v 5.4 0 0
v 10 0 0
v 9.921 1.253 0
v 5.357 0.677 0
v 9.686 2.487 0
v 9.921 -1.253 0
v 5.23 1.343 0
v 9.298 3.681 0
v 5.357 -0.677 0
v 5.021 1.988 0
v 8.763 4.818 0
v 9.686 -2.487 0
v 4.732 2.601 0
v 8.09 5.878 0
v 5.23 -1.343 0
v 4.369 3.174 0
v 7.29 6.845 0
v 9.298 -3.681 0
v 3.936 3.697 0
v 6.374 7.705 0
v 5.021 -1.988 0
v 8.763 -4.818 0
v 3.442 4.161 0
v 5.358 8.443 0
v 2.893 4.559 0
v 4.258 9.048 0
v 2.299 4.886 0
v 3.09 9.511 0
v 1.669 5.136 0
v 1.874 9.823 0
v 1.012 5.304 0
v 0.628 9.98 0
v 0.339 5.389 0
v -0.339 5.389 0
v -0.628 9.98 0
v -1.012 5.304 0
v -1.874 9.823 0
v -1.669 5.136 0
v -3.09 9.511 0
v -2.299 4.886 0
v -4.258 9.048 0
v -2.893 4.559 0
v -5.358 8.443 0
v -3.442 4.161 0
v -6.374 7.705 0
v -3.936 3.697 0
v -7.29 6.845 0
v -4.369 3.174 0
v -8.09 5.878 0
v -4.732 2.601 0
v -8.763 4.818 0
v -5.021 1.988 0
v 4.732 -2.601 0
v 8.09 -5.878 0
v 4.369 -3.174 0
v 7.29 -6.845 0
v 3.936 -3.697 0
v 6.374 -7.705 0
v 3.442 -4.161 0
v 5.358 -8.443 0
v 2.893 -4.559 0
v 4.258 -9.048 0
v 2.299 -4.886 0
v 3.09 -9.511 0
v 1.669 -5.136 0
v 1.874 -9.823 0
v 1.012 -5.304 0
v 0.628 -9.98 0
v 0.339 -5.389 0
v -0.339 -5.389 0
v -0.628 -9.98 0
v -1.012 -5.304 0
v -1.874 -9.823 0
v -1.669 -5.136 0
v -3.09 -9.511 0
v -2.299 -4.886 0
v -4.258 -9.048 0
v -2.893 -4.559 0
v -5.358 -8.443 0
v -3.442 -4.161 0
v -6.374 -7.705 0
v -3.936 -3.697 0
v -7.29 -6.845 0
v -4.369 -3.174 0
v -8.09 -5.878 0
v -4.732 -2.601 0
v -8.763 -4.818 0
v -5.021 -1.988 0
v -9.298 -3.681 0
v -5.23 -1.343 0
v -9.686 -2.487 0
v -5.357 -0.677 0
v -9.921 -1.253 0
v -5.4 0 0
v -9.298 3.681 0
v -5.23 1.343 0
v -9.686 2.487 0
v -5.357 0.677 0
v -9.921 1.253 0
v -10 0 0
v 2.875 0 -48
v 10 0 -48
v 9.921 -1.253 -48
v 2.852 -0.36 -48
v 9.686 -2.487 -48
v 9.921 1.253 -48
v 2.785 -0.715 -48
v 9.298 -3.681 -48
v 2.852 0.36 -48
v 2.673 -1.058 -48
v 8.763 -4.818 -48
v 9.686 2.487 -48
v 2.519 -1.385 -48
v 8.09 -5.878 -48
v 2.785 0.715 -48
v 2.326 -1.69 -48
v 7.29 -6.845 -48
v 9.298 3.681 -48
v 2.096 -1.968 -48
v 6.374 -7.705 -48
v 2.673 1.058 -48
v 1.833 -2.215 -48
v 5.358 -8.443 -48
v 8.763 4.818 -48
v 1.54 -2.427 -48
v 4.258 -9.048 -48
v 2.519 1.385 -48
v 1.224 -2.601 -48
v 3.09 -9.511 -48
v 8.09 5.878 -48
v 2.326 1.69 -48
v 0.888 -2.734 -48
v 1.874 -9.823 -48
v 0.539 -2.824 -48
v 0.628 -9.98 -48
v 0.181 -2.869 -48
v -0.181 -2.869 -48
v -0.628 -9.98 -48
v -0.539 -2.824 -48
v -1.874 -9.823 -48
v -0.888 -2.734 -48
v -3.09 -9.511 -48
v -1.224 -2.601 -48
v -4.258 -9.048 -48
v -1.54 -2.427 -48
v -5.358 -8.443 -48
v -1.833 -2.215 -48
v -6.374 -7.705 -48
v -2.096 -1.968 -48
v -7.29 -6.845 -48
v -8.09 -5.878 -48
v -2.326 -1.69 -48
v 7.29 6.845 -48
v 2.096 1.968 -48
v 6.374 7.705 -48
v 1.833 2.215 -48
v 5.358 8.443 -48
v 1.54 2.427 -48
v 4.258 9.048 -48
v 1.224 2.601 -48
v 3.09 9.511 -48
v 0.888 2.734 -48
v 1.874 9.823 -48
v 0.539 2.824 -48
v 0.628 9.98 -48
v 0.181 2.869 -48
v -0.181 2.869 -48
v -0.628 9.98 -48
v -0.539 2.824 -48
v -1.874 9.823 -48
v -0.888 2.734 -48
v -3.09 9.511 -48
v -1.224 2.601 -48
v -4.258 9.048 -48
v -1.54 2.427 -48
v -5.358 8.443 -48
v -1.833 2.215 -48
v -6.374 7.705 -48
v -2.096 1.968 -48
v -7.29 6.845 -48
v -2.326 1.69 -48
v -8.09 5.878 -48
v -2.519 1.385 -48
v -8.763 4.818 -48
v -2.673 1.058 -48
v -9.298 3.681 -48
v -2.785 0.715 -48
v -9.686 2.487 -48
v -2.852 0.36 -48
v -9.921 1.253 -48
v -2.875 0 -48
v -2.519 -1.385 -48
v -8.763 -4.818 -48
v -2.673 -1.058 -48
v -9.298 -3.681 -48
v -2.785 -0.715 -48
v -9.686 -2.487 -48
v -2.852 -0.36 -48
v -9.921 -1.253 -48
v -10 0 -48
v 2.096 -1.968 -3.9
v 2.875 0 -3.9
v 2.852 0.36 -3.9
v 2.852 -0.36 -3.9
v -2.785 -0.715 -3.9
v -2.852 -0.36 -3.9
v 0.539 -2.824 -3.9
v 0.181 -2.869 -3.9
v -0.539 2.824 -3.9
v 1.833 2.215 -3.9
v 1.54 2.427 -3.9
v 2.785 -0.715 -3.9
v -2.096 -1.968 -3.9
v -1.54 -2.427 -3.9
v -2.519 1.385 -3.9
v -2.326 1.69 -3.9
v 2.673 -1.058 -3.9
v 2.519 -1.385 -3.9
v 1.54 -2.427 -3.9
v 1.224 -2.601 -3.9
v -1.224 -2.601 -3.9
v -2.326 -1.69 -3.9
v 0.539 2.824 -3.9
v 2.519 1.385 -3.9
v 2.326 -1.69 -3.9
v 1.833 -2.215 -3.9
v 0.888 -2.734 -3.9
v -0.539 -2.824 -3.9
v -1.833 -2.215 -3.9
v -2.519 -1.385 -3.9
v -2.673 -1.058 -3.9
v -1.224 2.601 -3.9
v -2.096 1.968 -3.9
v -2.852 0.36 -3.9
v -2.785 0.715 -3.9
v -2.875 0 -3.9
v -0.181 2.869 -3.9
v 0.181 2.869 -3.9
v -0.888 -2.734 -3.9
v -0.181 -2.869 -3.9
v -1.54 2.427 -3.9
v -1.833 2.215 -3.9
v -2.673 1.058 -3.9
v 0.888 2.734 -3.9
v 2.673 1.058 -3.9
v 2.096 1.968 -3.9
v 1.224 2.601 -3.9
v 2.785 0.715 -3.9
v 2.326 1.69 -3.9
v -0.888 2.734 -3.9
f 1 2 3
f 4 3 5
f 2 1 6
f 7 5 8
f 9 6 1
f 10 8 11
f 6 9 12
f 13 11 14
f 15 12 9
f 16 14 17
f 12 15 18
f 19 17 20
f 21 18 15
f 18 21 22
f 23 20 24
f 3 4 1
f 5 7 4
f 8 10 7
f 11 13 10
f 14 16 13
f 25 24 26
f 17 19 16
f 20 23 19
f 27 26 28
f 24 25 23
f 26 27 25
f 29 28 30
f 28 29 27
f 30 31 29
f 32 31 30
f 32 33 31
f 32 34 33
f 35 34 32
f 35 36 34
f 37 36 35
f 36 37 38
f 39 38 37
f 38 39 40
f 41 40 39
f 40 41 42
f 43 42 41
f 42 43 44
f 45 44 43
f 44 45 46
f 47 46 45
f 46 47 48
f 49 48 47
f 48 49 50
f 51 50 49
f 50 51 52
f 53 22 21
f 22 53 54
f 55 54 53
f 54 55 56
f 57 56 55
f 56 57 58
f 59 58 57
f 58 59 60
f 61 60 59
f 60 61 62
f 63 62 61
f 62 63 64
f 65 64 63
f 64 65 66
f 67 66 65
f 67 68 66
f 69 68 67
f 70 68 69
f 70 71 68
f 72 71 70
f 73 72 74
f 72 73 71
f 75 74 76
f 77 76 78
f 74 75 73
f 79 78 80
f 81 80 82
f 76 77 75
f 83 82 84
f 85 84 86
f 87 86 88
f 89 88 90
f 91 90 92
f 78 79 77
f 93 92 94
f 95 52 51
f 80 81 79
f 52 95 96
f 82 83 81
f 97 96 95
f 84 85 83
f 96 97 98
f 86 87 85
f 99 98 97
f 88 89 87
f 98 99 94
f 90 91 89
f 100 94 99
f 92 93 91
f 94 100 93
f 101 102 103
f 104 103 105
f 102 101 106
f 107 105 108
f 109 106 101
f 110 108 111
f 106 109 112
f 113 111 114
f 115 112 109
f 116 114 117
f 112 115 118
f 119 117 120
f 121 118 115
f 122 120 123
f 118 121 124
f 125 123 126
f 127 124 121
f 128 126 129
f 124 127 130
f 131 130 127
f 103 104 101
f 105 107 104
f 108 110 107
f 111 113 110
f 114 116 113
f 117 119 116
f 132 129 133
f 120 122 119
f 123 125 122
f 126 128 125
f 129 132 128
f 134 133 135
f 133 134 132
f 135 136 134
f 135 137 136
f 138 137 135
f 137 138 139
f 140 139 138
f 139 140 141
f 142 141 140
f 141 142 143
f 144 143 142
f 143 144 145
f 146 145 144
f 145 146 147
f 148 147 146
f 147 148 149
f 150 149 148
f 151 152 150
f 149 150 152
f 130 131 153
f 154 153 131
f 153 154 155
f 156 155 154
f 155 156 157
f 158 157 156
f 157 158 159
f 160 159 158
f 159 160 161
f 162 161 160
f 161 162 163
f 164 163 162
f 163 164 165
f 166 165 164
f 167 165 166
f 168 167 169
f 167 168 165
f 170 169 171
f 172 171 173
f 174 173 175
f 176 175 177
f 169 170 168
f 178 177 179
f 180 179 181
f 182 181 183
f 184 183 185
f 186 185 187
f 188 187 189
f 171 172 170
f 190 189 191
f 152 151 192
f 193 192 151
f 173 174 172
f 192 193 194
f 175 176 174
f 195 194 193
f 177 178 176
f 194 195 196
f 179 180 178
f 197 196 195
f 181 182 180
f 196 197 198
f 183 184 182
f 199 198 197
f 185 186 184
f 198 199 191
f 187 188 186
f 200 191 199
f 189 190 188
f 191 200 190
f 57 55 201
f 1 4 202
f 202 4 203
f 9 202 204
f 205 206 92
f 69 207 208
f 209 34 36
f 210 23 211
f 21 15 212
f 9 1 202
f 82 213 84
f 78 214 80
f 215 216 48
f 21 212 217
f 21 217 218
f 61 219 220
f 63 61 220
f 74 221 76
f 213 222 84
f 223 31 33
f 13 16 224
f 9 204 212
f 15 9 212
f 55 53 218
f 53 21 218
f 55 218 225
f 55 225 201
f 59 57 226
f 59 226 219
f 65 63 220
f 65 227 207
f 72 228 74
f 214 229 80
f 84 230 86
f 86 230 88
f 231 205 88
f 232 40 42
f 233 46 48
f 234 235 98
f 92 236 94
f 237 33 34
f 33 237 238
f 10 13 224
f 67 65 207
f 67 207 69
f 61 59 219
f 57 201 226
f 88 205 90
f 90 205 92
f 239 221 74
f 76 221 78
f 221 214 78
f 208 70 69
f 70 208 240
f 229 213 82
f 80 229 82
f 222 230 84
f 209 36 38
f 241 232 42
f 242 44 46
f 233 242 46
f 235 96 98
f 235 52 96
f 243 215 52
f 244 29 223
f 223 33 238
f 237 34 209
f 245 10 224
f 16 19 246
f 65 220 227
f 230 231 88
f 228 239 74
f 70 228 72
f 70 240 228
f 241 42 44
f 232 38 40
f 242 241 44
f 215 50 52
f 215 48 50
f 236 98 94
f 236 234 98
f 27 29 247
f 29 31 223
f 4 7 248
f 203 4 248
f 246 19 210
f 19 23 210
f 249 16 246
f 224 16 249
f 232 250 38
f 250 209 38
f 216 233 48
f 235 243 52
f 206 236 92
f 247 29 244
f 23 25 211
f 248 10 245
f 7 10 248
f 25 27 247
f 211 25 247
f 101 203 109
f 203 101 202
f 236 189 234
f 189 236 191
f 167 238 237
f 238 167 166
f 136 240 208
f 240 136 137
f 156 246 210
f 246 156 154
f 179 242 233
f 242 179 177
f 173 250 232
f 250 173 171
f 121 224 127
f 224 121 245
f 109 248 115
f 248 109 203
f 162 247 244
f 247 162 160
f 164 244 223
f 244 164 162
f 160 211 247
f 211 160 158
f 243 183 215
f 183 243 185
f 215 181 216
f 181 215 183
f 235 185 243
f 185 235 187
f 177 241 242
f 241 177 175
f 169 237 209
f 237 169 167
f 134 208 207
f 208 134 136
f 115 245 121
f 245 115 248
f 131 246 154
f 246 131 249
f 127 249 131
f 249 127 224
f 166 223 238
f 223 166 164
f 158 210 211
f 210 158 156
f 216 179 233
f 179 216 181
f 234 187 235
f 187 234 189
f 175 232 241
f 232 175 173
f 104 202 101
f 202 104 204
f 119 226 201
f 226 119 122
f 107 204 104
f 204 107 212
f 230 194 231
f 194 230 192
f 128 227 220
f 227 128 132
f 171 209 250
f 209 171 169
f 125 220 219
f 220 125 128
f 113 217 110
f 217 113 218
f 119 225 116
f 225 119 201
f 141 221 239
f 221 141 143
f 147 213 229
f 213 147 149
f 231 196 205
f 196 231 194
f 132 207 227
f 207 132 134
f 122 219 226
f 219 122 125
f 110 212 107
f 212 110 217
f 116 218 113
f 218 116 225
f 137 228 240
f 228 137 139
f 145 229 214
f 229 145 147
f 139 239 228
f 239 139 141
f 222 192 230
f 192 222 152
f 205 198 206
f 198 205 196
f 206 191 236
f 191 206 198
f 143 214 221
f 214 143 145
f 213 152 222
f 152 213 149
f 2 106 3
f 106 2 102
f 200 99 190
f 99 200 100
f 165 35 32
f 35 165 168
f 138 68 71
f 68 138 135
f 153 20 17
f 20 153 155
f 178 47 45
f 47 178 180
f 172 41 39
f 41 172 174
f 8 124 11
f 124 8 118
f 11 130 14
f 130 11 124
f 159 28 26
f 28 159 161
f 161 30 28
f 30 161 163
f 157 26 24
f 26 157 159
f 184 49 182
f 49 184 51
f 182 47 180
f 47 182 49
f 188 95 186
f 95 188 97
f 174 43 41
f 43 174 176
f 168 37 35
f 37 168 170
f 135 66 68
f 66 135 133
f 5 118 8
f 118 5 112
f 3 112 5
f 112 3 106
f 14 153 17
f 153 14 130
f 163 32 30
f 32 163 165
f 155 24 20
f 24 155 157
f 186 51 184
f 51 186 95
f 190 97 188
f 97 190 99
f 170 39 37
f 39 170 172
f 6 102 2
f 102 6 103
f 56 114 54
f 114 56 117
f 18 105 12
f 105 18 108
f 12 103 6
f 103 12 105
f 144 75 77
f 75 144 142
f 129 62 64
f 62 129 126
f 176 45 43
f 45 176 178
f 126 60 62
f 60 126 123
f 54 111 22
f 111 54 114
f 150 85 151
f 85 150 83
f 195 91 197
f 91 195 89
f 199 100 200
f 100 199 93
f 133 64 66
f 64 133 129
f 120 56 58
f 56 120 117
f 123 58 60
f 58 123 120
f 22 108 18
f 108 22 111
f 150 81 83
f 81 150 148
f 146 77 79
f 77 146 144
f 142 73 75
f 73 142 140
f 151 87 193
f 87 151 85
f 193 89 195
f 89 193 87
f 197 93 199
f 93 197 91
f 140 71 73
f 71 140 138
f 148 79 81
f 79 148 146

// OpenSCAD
$fn = 50;


difference() {
	union() {
		translate(v = [0, 0, -48.0000000000]) {
			cylinder(h = 48, r = 10.0000000000);
		}
		cylinder(h = 0, r = 16.0000000000);
	}
	union() {
		translate(v = [0, 0, 0]) {
			rotate(a = [0, 0, 0]) {
				difference() {
					union() {
						#translate(v = [0, 0, -48.0000000000]) {
							cylinder(h = 48, r = 2.6000000000);
						}
						#translate(v = [0, 0, -3.9000000000]) {
							cylinder(h = 3.9000000000, r1 = 2.8750000000, r2 = 5.4000000000);
						}
						#translate(v = [0, 0, -48.0000000000]) {
							cylinder(h = 48, r = 2.8750000000);
						}
						#translate(v = [0, 0, -48.0000000000]) {
							cylinder(h = 48, r = 2.6000000000);
						}
					}
					union();
				}
			}
		}
	}
}
